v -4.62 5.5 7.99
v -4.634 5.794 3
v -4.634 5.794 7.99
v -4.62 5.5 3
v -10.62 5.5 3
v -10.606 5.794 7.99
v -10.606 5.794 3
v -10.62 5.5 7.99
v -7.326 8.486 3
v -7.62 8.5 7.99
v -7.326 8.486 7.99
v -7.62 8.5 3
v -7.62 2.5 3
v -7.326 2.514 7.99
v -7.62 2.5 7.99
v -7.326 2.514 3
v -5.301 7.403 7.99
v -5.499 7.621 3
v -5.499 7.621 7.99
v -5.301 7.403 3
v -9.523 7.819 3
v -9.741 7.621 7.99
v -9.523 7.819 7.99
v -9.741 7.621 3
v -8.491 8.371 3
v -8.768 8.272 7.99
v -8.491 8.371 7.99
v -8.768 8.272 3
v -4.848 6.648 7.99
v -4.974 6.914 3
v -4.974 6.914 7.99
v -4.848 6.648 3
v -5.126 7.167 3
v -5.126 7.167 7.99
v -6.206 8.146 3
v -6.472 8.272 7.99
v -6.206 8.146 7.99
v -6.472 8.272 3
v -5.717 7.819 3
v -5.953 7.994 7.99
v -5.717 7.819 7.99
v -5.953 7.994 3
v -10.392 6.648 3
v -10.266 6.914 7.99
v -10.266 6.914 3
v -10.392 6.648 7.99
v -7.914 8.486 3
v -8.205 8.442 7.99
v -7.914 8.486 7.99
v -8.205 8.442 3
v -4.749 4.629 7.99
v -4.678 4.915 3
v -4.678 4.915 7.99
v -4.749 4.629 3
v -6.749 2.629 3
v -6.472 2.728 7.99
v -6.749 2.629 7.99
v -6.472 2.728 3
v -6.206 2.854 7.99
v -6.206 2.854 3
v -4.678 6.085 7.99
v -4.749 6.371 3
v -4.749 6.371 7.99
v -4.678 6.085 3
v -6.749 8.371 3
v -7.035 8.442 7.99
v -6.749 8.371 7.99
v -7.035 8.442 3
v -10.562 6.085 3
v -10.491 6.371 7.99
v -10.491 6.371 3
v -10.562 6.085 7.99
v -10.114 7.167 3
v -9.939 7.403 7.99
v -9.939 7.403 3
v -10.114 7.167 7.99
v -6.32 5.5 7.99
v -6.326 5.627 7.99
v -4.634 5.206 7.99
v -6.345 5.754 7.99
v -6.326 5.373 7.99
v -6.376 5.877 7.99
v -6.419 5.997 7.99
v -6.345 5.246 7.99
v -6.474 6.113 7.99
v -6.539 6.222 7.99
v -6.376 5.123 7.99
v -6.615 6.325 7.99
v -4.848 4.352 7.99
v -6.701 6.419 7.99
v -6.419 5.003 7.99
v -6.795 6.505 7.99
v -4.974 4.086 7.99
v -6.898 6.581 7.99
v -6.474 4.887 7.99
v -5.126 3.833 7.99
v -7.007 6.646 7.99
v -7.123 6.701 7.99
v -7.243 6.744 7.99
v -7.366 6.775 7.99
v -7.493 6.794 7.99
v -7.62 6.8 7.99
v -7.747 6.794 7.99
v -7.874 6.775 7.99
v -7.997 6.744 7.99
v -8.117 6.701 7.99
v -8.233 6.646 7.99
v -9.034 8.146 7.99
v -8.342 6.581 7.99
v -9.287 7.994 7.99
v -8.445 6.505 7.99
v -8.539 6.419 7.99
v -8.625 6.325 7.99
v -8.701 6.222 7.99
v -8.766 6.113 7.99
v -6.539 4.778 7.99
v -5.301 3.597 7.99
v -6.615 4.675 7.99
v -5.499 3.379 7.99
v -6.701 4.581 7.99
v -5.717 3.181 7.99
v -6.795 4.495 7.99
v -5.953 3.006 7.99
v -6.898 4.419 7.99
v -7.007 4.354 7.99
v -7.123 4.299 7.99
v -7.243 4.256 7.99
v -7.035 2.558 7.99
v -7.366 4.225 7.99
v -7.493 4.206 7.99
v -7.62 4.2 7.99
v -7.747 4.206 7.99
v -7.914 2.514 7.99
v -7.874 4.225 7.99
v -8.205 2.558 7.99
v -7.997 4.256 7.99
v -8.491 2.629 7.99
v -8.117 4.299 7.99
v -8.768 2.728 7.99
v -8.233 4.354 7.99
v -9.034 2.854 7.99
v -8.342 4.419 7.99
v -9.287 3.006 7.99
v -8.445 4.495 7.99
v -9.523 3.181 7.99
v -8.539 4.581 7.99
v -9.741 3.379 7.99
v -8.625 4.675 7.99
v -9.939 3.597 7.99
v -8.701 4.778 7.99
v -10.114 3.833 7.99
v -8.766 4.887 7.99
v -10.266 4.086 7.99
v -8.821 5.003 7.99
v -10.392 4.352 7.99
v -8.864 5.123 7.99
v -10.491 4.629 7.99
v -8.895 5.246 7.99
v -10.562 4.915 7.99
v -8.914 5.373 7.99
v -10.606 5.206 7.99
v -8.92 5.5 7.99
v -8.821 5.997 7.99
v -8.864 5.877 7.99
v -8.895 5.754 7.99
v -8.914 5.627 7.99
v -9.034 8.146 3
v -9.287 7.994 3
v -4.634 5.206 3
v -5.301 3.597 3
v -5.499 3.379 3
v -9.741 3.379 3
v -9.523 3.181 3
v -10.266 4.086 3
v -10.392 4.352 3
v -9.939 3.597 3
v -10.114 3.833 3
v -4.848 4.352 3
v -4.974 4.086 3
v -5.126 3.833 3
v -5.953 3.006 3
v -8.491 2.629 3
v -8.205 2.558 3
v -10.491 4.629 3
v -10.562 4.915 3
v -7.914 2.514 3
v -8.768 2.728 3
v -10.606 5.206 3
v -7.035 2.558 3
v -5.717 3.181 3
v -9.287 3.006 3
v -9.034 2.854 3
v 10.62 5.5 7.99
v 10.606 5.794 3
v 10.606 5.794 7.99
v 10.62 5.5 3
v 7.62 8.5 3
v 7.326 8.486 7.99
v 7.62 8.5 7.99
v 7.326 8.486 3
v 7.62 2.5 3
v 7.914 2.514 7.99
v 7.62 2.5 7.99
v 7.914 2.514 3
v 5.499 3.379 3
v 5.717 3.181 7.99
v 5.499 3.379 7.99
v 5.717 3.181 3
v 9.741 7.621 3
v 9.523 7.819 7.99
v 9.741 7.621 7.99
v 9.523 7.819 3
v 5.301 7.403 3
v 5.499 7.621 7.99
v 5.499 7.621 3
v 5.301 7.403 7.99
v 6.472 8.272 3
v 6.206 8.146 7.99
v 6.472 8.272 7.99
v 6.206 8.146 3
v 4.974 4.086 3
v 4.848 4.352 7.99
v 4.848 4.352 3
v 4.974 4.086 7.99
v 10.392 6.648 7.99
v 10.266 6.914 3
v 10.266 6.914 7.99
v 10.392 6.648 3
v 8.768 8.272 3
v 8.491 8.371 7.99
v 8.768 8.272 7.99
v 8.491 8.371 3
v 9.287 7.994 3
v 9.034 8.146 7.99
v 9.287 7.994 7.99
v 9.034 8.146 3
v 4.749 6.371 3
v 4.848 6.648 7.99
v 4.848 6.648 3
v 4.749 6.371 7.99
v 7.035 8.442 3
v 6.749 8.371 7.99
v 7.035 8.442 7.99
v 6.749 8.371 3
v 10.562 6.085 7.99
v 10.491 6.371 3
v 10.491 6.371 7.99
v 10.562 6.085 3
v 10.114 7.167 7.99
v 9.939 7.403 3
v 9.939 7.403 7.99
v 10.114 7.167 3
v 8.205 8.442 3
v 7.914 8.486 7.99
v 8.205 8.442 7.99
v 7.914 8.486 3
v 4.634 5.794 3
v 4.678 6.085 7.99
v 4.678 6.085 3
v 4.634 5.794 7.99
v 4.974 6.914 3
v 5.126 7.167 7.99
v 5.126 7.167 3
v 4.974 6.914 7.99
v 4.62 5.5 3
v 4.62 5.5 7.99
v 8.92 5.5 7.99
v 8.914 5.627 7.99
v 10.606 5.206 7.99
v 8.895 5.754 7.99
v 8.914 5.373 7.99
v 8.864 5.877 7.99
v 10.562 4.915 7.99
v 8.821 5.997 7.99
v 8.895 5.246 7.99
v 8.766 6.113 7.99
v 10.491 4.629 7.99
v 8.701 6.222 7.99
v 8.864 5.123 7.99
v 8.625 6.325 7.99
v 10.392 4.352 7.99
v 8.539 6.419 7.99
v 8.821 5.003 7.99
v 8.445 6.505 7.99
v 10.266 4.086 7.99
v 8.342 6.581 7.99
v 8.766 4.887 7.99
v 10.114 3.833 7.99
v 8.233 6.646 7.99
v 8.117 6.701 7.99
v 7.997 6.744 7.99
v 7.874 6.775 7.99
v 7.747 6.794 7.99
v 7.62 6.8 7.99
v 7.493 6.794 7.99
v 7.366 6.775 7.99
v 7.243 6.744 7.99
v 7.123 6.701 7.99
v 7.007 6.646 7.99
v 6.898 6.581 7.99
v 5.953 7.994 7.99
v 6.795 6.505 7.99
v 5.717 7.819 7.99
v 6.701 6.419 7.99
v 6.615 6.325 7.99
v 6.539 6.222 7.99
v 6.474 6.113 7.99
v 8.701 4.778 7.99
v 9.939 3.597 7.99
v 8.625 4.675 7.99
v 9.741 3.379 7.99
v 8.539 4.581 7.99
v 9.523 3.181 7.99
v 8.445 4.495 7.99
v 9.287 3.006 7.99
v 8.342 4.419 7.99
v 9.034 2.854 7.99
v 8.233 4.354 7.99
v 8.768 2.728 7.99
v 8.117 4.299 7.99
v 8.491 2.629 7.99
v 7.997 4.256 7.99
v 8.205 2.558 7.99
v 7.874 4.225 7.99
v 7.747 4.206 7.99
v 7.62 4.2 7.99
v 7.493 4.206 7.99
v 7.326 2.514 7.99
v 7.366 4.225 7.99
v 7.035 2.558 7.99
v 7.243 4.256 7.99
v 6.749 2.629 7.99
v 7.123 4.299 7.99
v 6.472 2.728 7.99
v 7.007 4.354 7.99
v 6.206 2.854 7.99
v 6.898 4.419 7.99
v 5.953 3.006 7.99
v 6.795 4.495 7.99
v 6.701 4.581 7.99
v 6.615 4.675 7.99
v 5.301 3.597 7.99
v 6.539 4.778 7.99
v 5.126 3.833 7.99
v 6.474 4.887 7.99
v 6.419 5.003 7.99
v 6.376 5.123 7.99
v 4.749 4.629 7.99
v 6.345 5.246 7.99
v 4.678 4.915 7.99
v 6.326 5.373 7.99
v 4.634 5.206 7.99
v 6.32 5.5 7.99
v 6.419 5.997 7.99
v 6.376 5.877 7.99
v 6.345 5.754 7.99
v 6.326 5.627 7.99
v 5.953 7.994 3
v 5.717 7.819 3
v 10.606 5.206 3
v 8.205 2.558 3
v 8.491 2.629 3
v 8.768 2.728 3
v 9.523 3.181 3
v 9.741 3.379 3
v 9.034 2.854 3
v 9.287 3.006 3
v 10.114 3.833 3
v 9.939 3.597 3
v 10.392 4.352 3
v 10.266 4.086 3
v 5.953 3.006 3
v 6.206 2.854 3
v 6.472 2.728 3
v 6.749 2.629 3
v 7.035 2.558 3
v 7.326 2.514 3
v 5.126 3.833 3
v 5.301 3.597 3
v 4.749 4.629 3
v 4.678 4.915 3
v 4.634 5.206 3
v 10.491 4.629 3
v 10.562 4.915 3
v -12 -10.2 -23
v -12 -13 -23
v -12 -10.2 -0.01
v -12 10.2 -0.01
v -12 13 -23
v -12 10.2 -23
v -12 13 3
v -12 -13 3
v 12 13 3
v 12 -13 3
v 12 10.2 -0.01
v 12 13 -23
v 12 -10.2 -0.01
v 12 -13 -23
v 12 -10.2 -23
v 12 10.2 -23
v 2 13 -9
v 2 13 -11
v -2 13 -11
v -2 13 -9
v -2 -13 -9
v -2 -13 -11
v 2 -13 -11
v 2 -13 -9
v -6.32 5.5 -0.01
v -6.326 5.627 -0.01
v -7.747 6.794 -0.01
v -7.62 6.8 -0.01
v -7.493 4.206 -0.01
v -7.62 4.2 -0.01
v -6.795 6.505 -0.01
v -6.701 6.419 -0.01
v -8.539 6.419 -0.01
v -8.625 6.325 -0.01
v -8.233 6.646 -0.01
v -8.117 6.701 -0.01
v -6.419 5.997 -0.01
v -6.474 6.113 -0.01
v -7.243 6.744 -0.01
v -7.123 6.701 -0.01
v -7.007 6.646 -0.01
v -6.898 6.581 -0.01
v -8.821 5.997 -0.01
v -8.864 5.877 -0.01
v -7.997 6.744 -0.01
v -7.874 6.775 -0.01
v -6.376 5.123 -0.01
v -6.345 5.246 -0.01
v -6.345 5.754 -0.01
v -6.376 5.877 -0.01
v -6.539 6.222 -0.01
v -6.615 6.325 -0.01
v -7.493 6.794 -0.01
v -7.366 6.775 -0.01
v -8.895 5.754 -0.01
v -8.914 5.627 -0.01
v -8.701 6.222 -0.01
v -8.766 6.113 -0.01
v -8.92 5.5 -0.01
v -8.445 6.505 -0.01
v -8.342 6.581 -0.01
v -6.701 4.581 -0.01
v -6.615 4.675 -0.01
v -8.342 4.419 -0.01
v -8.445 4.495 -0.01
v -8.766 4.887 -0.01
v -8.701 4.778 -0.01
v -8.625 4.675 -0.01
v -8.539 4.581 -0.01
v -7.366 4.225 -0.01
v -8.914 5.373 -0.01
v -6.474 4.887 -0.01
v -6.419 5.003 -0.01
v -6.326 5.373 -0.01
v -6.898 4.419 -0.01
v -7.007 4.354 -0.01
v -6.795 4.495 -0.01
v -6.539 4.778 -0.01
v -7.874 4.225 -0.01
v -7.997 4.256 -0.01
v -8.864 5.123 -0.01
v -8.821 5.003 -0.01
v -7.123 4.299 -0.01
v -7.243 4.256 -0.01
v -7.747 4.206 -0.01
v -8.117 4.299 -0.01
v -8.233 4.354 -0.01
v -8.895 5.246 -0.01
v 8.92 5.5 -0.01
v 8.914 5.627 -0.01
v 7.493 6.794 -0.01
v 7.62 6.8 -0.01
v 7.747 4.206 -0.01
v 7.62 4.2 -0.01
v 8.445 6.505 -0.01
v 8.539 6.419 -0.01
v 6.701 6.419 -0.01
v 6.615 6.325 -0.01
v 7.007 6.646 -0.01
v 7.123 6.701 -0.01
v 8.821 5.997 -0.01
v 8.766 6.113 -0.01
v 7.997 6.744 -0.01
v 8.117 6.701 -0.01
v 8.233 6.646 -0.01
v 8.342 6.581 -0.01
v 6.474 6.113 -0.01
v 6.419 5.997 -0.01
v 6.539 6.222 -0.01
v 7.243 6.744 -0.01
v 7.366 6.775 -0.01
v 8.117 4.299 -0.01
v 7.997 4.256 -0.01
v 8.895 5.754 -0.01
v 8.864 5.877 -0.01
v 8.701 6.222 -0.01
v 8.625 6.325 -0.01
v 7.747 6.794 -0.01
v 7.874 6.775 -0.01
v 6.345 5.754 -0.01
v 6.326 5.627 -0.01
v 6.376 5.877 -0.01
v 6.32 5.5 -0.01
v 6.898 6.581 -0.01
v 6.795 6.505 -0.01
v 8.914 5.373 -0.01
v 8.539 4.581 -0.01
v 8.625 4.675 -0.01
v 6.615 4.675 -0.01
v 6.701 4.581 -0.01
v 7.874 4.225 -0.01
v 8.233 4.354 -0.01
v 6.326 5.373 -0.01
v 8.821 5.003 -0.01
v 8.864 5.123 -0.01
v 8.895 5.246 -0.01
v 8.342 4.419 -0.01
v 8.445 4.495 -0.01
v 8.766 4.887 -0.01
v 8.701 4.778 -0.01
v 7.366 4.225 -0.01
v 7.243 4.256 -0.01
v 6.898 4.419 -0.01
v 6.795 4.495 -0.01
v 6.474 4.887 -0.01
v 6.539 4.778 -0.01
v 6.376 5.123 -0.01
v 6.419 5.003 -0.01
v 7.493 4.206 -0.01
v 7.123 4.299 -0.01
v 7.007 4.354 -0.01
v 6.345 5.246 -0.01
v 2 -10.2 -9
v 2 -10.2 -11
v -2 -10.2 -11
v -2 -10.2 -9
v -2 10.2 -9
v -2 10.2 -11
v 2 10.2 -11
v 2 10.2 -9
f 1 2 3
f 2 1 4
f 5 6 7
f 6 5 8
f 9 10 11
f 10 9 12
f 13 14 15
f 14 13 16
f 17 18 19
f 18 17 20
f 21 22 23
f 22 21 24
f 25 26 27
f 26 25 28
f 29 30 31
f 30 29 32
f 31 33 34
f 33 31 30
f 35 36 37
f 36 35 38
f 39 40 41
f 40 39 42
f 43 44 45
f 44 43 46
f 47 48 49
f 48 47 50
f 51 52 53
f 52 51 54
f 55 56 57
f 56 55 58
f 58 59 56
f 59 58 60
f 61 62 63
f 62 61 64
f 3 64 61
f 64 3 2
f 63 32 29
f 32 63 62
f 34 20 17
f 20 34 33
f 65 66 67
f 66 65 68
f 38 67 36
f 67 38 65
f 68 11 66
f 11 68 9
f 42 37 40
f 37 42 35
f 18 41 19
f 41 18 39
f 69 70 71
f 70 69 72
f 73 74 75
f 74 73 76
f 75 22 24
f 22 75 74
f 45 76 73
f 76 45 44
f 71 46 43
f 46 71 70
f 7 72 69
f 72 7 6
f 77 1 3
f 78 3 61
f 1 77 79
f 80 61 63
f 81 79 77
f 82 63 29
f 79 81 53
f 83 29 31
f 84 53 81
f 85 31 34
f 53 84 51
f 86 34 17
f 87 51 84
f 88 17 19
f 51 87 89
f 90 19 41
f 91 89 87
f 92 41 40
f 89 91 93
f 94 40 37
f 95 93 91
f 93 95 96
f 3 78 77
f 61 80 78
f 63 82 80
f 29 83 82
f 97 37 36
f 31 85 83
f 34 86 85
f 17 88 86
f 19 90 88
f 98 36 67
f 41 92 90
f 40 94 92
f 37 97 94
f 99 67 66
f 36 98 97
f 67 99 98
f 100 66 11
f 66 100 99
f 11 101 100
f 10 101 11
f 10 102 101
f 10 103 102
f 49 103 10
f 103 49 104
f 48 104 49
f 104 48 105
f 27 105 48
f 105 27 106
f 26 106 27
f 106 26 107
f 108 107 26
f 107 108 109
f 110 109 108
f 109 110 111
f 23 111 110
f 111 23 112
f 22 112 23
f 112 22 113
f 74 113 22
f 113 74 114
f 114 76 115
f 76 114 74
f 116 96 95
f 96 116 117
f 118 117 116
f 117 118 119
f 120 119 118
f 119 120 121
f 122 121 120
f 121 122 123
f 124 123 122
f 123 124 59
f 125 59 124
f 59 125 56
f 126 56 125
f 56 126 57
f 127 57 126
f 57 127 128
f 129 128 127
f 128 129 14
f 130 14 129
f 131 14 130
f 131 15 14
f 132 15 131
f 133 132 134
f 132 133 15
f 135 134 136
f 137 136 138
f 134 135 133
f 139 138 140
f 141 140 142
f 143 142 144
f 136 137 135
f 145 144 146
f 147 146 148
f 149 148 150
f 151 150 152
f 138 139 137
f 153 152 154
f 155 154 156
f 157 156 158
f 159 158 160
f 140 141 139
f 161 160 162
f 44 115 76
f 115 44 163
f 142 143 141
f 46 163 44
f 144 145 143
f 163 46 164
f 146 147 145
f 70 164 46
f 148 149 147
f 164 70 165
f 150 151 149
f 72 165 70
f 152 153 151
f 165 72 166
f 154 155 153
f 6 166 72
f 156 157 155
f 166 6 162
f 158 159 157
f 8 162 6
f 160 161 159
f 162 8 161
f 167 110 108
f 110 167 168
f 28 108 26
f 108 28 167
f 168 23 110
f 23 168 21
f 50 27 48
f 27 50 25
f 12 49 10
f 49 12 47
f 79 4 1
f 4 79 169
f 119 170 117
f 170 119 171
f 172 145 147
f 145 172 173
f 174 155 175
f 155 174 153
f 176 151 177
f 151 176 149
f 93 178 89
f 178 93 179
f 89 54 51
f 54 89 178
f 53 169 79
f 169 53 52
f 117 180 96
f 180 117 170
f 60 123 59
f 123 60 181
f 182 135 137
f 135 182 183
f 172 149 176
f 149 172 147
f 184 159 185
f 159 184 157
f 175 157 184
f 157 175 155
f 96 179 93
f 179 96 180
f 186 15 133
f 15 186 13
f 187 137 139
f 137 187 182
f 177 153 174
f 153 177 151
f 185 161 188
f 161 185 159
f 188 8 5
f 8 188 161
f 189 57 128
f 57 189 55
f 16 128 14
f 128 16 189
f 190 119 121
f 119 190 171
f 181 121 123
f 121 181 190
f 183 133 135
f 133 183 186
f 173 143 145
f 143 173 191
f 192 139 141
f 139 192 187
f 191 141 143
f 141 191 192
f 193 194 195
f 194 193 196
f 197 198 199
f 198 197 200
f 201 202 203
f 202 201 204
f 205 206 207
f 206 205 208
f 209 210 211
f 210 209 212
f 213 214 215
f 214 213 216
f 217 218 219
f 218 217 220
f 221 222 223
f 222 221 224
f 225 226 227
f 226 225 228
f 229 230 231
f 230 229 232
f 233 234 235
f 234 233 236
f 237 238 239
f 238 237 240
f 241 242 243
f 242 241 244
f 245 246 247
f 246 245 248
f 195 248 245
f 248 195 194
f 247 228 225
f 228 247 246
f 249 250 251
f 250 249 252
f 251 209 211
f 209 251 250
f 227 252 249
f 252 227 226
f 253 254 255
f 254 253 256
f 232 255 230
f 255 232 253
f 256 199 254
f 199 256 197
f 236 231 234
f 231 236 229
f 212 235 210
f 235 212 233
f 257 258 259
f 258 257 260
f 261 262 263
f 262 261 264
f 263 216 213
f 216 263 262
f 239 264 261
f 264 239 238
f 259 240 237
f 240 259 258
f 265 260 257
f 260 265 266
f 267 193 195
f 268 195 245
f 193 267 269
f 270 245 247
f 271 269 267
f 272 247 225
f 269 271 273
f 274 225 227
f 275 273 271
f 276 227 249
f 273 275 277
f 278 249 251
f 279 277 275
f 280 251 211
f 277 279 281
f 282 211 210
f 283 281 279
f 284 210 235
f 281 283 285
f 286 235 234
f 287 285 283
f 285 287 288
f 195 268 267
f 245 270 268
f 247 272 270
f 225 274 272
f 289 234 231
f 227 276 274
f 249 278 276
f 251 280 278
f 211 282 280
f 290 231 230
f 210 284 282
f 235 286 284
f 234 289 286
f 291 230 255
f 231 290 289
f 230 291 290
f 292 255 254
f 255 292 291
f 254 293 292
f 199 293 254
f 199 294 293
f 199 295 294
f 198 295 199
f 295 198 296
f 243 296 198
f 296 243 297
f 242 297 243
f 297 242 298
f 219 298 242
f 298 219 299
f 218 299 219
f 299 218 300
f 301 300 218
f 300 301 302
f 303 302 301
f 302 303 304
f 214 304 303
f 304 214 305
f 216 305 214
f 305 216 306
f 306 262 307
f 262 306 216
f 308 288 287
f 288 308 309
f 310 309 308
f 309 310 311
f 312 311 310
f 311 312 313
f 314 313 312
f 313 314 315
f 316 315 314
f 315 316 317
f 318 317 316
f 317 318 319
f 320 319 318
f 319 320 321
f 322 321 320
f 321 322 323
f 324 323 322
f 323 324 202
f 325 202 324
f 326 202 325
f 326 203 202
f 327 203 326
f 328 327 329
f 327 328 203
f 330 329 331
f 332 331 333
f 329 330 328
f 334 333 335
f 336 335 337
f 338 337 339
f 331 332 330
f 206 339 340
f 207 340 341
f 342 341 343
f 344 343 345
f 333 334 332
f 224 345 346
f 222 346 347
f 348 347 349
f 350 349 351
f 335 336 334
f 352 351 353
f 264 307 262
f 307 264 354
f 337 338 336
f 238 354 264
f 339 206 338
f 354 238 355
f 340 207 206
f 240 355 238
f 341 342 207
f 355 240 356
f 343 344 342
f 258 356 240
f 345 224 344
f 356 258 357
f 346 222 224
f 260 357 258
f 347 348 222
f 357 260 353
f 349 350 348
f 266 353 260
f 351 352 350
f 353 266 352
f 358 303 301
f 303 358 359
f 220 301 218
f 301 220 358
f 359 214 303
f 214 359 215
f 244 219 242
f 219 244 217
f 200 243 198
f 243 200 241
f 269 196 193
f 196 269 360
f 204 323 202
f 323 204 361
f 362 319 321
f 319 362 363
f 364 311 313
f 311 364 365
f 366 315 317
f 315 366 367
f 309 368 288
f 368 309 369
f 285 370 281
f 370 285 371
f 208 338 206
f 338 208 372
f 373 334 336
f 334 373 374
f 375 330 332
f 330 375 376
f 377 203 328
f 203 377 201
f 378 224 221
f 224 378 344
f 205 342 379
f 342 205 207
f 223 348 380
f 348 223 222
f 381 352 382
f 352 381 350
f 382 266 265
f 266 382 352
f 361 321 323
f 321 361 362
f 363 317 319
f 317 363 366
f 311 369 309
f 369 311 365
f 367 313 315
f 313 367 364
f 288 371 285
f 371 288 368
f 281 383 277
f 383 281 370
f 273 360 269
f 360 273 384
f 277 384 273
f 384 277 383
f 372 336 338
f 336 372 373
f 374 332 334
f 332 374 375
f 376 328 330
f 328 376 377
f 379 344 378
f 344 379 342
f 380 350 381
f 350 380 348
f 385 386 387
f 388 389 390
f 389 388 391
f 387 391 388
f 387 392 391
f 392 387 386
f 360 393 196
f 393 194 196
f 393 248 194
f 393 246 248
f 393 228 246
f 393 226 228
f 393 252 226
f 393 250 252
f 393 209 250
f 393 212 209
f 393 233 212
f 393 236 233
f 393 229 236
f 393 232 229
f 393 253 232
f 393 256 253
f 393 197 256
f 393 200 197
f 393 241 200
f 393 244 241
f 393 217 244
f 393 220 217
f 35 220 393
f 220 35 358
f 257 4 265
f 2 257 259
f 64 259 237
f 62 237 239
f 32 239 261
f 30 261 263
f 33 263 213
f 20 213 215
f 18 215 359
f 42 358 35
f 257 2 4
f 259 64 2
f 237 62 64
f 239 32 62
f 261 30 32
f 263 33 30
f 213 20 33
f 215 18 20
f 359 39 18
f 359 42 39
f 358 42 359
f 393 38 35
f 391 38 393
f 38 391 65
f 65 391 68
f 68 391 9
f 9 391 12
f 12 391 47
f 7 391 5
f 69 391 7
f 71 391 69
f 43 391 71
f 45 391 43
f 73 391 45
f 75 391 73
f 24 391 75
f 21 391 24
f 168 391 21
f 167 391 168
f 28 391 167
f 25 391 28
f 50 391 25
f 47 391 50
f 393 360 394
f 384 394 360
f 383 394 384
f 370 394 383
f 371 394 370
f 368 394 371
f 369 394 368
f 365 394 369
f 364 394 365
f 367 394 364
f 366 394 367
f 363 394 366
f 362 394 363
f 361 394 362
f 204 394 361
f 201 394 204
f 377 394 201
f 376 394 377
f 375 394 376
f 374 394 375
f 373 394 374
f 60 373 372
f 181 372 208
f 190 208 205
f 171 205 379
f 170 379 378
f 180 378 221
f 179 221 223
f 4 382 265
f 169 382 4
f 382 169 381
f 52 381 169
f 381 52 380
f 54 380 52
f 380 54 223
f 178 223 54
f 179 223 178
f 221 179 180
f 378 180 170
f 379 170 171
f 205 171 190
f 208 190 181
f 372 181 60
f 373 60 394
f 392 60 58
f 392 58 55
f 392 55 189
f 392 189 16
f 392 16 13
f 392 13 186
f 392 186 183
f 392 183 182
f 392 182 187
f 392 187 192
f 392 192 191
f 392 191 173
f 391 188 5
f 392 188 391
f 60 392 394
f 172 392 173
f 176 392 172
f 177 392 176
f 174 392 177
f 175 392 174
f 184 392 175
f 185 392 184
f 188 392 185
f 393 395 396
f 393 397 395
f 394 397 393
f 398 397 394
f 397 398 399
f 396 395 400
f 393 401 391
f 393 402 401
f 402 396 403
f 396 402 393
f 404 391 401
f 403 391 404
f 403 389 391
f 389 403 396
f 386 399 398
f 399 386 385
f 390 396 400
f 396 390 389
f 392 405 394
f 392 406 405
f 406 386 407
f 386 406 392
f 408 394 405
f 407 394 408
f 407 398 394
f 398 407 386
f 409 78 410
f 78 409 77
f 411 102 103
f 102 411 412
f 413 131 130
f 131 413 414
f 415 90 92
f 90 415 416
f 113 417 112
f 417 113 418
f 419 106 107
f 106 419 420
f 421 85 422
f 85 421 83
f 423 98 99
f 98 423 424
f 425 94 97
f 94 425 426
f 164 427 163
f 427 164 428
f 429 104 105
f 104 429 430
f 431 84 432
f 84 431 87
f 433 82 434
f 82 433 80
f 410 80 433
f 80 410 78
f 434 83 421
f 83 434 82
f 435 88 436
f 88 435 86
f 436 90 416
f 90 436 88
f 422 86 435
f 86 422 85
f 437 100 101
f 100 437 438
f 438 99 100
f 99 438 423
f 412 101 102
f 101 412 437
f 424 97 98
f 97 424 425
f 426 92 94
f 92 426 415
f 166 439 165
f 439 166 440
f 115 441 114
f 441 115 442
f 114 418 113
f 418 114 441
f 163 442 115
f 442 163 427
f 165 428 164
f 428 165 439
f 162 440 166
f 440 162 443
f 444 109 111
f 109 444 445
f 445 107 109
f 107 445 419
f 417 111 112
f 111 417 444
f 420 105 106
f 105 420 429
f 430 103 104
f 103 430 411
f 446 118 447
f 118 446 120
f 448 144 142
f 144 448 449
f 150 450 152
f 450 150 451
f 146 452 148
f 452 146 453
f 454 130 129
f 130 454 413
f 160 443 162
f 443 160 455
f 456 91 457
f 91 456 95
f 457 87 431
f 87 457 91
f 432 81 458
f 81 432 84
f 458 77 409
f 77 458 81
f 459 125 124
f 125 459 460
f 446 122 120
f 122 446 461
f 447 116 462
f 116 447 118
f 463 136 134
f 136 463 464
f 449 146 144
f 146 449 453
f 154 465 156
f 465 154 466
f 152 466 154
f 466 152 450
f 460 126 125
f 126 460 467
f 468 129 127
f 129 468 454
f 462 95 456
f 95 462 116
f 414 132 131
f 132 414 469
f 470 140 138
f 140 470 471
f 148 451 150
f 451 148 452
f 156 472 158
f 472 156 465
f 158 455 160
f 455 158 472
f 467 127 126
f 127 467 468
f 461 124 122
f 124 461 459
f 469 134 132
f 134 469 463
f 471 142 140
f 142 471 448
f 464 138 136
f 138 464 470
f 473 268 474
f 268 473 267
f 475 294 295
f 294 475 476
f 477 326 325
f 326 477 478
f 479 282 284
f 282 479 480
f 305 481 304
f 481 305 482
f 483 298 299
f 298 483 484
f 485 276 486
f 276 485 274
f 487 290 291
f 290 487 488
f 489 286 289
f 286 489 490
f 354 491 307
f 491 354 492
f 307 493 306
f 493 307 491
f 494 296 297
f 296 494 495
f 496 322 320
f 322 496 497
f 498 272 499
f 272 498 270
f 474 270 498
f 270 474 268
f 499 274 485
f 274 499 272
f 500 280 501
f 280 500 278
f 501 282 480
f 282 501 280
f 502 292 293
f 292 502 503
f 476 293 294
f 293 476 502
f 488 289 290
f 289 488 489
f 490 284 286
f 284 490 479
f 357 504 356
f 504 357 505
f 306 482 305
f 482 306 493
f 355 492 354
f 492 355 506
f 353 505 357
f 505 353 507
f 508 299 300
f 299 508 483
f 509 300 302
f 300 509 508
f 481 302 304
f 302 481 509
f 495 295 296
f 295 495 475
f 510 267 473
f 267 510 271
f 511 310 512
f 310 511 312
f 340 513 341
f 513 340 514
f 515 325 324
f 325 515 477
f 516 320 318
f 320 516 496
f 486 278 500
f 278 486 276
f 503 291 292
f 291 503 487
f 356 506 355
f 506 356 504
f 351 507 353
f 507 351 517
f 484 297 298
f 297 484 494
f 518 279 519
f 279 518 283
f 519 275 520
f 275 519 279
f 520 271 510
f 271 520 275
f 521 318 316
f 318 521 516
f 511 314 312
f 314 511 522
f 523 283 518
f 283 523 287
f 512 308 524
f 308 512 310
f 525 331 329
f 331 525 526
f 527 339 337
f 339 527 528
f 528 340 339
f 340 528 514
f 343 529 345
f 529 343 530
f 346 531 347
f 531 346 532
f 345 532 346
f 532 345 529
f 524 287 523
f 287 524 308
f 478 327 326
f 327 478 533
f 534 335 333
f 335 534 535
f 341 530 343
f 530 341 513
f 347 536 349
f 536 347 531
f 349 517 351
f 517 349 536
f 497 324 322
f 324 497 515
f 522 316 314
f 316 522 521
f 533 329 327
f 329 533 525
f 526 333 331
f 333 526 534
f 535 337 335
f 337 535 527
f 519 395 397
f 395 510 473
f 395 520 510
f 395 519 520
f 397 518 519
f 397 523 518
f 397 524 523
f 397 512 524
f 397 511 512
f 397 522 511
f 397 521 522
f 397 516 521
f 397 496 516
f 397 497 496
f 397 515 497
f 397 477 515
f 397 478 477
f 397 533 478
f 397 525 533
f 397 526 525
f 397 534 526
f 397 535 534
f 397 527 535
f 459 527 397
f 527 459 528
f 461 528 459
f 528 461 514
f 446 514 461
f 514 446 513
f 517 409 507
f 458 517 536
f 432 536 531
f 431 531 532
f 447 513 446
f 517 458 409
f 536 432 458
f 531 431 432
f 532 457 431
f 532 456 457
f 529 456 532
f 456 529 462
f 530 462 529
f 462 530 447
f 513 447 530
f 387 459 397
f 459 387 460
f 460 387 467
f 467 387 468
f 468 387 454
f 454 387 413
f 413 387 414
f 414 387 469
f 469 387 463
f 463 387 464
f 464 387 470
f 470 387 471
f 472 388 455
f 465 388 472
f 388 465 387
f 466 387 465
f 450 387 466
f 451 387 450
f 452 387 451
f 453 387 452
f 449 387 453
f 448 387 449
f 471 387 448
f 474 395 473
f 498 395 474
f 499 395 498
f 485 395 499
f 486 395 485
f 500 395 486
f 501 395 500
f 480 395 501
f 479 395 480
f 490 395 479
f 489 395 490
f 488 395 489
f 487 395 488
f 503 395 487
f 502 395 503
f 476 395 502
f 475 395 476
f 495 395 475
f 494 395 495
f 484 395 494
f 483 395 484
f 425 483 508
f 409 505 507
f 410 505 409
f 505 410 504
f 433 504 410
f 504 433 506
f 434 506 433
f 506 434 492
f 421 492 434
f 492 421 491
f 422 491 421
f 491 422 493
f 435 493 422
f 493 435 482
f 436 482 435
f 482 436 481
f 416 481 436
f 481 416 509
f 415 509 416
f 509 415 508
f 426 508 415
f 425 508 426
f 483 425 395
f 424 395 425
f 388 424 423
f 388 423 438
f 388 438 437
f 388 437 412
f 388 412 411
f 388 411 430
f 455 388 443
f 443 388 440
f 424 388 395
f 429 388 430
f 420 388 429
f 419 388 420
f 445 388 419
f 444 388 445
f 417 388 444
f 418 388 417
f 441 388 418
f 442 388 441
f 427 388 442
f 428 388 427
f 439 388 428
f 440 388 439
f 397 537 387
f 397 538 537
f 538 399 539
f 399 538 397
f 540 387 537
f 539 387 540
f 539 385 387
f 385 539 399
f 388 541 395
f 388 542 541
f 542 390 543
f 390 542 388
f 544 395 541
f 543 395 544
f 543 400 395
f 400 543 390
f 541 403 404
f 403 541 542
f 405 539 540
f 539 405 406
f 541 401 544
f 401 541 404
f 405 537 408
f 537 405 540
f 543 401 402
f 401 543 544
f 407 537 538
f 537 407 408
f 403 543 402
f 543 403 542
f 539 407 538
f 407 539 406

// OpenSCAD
// file: common.scad
// common.scad -- shared dimensions for the seesaw-rig parts (millimetres).
// Drone-control bootcamp, CC BY 4.0. Measure your own parts and adjust.

beam_w      = 20.0;   // square aluminium tube (or pine strip), outer size
fit         = 0.4;    // printing clearance for sliding fits
bearing_od  = 22.0;   // 608 bearing
bearing_w   = 7.0;
axle_d      = 8.0;    // M8 threaded rod or 8 mm steel rod
pot_shaft_d = 6.0;    // common B10K pot (WH148): 6 mm shaft
pot_bush_d  = 7.0;    // threaded bushing (M7)
m3          = 3.4;    // M3 clearance hole
m3_nut      = 6.4;    // M3 nut across flats (+ clearance)
wall        = 3.0;

$fn = 64;

// rounded rectangle plate, centred in x/y, sitting on z = 0
module plate(x, y, h, r = 3) {
  hull()
    for (sx = [-1, 1], sy = [-1, 1])
      translate([sx * (x / 2 - r), sy * (y / 2 - r), 0]) cylinder(r = r, h = h);
}
// main file
// imu_mount.scad -- puts a GY-521 (MPU-6050) board on the beam, centred over the pivot
// axis, with its x axis along the beam. Mounting holes of the common GY-521: two 3 mm
// holes 15.24 mm apart along one edge (measure yours).
include <common.scad>

hole_spacing = 15.24;
board_x = 21;     // along the beam
board_y = 16;
standoff_h = 5;
clamp_len = 24;

difference() {
  union() {
    // saddle on the beam
    translate([-clamp_len / 2, -(beam_w + 2 * wall) / 2, -(beam_w + wall)])
      cube([clamp_len, beam_w + 2 * wall, beam_w + 2 * wall]);
    // two standoffs for the board
    for (sx = [-1, 1]) translate([sx * hole_spacing / 2, board_y / 2 - 2.5, wall - 0.01])
      cylinder(d = 6, h = standoff_h);
  }
  translate([-clamp_len / 2 - 1, -(beam_w + fit) / 2, -(beam_w + wall) - 1])
    cube([clamp_len + 2, beam_w + fit, beam_w + wall + 1 - 0.01]);
  for (sx = [-1, 1]) translate([sx * hole_spacing / 2, board_y / 2 - 2.5, -1])
    cylinder(d = 2.6, h = standoff_h + wall + 2);  // M3 self-tapping
  // a cable tie through the saddle holds it on the beam
  translate([0, 0, -beam_w / 2]) cube([4, beam_w + 2 * wall + 2, 2], center = true);
}
